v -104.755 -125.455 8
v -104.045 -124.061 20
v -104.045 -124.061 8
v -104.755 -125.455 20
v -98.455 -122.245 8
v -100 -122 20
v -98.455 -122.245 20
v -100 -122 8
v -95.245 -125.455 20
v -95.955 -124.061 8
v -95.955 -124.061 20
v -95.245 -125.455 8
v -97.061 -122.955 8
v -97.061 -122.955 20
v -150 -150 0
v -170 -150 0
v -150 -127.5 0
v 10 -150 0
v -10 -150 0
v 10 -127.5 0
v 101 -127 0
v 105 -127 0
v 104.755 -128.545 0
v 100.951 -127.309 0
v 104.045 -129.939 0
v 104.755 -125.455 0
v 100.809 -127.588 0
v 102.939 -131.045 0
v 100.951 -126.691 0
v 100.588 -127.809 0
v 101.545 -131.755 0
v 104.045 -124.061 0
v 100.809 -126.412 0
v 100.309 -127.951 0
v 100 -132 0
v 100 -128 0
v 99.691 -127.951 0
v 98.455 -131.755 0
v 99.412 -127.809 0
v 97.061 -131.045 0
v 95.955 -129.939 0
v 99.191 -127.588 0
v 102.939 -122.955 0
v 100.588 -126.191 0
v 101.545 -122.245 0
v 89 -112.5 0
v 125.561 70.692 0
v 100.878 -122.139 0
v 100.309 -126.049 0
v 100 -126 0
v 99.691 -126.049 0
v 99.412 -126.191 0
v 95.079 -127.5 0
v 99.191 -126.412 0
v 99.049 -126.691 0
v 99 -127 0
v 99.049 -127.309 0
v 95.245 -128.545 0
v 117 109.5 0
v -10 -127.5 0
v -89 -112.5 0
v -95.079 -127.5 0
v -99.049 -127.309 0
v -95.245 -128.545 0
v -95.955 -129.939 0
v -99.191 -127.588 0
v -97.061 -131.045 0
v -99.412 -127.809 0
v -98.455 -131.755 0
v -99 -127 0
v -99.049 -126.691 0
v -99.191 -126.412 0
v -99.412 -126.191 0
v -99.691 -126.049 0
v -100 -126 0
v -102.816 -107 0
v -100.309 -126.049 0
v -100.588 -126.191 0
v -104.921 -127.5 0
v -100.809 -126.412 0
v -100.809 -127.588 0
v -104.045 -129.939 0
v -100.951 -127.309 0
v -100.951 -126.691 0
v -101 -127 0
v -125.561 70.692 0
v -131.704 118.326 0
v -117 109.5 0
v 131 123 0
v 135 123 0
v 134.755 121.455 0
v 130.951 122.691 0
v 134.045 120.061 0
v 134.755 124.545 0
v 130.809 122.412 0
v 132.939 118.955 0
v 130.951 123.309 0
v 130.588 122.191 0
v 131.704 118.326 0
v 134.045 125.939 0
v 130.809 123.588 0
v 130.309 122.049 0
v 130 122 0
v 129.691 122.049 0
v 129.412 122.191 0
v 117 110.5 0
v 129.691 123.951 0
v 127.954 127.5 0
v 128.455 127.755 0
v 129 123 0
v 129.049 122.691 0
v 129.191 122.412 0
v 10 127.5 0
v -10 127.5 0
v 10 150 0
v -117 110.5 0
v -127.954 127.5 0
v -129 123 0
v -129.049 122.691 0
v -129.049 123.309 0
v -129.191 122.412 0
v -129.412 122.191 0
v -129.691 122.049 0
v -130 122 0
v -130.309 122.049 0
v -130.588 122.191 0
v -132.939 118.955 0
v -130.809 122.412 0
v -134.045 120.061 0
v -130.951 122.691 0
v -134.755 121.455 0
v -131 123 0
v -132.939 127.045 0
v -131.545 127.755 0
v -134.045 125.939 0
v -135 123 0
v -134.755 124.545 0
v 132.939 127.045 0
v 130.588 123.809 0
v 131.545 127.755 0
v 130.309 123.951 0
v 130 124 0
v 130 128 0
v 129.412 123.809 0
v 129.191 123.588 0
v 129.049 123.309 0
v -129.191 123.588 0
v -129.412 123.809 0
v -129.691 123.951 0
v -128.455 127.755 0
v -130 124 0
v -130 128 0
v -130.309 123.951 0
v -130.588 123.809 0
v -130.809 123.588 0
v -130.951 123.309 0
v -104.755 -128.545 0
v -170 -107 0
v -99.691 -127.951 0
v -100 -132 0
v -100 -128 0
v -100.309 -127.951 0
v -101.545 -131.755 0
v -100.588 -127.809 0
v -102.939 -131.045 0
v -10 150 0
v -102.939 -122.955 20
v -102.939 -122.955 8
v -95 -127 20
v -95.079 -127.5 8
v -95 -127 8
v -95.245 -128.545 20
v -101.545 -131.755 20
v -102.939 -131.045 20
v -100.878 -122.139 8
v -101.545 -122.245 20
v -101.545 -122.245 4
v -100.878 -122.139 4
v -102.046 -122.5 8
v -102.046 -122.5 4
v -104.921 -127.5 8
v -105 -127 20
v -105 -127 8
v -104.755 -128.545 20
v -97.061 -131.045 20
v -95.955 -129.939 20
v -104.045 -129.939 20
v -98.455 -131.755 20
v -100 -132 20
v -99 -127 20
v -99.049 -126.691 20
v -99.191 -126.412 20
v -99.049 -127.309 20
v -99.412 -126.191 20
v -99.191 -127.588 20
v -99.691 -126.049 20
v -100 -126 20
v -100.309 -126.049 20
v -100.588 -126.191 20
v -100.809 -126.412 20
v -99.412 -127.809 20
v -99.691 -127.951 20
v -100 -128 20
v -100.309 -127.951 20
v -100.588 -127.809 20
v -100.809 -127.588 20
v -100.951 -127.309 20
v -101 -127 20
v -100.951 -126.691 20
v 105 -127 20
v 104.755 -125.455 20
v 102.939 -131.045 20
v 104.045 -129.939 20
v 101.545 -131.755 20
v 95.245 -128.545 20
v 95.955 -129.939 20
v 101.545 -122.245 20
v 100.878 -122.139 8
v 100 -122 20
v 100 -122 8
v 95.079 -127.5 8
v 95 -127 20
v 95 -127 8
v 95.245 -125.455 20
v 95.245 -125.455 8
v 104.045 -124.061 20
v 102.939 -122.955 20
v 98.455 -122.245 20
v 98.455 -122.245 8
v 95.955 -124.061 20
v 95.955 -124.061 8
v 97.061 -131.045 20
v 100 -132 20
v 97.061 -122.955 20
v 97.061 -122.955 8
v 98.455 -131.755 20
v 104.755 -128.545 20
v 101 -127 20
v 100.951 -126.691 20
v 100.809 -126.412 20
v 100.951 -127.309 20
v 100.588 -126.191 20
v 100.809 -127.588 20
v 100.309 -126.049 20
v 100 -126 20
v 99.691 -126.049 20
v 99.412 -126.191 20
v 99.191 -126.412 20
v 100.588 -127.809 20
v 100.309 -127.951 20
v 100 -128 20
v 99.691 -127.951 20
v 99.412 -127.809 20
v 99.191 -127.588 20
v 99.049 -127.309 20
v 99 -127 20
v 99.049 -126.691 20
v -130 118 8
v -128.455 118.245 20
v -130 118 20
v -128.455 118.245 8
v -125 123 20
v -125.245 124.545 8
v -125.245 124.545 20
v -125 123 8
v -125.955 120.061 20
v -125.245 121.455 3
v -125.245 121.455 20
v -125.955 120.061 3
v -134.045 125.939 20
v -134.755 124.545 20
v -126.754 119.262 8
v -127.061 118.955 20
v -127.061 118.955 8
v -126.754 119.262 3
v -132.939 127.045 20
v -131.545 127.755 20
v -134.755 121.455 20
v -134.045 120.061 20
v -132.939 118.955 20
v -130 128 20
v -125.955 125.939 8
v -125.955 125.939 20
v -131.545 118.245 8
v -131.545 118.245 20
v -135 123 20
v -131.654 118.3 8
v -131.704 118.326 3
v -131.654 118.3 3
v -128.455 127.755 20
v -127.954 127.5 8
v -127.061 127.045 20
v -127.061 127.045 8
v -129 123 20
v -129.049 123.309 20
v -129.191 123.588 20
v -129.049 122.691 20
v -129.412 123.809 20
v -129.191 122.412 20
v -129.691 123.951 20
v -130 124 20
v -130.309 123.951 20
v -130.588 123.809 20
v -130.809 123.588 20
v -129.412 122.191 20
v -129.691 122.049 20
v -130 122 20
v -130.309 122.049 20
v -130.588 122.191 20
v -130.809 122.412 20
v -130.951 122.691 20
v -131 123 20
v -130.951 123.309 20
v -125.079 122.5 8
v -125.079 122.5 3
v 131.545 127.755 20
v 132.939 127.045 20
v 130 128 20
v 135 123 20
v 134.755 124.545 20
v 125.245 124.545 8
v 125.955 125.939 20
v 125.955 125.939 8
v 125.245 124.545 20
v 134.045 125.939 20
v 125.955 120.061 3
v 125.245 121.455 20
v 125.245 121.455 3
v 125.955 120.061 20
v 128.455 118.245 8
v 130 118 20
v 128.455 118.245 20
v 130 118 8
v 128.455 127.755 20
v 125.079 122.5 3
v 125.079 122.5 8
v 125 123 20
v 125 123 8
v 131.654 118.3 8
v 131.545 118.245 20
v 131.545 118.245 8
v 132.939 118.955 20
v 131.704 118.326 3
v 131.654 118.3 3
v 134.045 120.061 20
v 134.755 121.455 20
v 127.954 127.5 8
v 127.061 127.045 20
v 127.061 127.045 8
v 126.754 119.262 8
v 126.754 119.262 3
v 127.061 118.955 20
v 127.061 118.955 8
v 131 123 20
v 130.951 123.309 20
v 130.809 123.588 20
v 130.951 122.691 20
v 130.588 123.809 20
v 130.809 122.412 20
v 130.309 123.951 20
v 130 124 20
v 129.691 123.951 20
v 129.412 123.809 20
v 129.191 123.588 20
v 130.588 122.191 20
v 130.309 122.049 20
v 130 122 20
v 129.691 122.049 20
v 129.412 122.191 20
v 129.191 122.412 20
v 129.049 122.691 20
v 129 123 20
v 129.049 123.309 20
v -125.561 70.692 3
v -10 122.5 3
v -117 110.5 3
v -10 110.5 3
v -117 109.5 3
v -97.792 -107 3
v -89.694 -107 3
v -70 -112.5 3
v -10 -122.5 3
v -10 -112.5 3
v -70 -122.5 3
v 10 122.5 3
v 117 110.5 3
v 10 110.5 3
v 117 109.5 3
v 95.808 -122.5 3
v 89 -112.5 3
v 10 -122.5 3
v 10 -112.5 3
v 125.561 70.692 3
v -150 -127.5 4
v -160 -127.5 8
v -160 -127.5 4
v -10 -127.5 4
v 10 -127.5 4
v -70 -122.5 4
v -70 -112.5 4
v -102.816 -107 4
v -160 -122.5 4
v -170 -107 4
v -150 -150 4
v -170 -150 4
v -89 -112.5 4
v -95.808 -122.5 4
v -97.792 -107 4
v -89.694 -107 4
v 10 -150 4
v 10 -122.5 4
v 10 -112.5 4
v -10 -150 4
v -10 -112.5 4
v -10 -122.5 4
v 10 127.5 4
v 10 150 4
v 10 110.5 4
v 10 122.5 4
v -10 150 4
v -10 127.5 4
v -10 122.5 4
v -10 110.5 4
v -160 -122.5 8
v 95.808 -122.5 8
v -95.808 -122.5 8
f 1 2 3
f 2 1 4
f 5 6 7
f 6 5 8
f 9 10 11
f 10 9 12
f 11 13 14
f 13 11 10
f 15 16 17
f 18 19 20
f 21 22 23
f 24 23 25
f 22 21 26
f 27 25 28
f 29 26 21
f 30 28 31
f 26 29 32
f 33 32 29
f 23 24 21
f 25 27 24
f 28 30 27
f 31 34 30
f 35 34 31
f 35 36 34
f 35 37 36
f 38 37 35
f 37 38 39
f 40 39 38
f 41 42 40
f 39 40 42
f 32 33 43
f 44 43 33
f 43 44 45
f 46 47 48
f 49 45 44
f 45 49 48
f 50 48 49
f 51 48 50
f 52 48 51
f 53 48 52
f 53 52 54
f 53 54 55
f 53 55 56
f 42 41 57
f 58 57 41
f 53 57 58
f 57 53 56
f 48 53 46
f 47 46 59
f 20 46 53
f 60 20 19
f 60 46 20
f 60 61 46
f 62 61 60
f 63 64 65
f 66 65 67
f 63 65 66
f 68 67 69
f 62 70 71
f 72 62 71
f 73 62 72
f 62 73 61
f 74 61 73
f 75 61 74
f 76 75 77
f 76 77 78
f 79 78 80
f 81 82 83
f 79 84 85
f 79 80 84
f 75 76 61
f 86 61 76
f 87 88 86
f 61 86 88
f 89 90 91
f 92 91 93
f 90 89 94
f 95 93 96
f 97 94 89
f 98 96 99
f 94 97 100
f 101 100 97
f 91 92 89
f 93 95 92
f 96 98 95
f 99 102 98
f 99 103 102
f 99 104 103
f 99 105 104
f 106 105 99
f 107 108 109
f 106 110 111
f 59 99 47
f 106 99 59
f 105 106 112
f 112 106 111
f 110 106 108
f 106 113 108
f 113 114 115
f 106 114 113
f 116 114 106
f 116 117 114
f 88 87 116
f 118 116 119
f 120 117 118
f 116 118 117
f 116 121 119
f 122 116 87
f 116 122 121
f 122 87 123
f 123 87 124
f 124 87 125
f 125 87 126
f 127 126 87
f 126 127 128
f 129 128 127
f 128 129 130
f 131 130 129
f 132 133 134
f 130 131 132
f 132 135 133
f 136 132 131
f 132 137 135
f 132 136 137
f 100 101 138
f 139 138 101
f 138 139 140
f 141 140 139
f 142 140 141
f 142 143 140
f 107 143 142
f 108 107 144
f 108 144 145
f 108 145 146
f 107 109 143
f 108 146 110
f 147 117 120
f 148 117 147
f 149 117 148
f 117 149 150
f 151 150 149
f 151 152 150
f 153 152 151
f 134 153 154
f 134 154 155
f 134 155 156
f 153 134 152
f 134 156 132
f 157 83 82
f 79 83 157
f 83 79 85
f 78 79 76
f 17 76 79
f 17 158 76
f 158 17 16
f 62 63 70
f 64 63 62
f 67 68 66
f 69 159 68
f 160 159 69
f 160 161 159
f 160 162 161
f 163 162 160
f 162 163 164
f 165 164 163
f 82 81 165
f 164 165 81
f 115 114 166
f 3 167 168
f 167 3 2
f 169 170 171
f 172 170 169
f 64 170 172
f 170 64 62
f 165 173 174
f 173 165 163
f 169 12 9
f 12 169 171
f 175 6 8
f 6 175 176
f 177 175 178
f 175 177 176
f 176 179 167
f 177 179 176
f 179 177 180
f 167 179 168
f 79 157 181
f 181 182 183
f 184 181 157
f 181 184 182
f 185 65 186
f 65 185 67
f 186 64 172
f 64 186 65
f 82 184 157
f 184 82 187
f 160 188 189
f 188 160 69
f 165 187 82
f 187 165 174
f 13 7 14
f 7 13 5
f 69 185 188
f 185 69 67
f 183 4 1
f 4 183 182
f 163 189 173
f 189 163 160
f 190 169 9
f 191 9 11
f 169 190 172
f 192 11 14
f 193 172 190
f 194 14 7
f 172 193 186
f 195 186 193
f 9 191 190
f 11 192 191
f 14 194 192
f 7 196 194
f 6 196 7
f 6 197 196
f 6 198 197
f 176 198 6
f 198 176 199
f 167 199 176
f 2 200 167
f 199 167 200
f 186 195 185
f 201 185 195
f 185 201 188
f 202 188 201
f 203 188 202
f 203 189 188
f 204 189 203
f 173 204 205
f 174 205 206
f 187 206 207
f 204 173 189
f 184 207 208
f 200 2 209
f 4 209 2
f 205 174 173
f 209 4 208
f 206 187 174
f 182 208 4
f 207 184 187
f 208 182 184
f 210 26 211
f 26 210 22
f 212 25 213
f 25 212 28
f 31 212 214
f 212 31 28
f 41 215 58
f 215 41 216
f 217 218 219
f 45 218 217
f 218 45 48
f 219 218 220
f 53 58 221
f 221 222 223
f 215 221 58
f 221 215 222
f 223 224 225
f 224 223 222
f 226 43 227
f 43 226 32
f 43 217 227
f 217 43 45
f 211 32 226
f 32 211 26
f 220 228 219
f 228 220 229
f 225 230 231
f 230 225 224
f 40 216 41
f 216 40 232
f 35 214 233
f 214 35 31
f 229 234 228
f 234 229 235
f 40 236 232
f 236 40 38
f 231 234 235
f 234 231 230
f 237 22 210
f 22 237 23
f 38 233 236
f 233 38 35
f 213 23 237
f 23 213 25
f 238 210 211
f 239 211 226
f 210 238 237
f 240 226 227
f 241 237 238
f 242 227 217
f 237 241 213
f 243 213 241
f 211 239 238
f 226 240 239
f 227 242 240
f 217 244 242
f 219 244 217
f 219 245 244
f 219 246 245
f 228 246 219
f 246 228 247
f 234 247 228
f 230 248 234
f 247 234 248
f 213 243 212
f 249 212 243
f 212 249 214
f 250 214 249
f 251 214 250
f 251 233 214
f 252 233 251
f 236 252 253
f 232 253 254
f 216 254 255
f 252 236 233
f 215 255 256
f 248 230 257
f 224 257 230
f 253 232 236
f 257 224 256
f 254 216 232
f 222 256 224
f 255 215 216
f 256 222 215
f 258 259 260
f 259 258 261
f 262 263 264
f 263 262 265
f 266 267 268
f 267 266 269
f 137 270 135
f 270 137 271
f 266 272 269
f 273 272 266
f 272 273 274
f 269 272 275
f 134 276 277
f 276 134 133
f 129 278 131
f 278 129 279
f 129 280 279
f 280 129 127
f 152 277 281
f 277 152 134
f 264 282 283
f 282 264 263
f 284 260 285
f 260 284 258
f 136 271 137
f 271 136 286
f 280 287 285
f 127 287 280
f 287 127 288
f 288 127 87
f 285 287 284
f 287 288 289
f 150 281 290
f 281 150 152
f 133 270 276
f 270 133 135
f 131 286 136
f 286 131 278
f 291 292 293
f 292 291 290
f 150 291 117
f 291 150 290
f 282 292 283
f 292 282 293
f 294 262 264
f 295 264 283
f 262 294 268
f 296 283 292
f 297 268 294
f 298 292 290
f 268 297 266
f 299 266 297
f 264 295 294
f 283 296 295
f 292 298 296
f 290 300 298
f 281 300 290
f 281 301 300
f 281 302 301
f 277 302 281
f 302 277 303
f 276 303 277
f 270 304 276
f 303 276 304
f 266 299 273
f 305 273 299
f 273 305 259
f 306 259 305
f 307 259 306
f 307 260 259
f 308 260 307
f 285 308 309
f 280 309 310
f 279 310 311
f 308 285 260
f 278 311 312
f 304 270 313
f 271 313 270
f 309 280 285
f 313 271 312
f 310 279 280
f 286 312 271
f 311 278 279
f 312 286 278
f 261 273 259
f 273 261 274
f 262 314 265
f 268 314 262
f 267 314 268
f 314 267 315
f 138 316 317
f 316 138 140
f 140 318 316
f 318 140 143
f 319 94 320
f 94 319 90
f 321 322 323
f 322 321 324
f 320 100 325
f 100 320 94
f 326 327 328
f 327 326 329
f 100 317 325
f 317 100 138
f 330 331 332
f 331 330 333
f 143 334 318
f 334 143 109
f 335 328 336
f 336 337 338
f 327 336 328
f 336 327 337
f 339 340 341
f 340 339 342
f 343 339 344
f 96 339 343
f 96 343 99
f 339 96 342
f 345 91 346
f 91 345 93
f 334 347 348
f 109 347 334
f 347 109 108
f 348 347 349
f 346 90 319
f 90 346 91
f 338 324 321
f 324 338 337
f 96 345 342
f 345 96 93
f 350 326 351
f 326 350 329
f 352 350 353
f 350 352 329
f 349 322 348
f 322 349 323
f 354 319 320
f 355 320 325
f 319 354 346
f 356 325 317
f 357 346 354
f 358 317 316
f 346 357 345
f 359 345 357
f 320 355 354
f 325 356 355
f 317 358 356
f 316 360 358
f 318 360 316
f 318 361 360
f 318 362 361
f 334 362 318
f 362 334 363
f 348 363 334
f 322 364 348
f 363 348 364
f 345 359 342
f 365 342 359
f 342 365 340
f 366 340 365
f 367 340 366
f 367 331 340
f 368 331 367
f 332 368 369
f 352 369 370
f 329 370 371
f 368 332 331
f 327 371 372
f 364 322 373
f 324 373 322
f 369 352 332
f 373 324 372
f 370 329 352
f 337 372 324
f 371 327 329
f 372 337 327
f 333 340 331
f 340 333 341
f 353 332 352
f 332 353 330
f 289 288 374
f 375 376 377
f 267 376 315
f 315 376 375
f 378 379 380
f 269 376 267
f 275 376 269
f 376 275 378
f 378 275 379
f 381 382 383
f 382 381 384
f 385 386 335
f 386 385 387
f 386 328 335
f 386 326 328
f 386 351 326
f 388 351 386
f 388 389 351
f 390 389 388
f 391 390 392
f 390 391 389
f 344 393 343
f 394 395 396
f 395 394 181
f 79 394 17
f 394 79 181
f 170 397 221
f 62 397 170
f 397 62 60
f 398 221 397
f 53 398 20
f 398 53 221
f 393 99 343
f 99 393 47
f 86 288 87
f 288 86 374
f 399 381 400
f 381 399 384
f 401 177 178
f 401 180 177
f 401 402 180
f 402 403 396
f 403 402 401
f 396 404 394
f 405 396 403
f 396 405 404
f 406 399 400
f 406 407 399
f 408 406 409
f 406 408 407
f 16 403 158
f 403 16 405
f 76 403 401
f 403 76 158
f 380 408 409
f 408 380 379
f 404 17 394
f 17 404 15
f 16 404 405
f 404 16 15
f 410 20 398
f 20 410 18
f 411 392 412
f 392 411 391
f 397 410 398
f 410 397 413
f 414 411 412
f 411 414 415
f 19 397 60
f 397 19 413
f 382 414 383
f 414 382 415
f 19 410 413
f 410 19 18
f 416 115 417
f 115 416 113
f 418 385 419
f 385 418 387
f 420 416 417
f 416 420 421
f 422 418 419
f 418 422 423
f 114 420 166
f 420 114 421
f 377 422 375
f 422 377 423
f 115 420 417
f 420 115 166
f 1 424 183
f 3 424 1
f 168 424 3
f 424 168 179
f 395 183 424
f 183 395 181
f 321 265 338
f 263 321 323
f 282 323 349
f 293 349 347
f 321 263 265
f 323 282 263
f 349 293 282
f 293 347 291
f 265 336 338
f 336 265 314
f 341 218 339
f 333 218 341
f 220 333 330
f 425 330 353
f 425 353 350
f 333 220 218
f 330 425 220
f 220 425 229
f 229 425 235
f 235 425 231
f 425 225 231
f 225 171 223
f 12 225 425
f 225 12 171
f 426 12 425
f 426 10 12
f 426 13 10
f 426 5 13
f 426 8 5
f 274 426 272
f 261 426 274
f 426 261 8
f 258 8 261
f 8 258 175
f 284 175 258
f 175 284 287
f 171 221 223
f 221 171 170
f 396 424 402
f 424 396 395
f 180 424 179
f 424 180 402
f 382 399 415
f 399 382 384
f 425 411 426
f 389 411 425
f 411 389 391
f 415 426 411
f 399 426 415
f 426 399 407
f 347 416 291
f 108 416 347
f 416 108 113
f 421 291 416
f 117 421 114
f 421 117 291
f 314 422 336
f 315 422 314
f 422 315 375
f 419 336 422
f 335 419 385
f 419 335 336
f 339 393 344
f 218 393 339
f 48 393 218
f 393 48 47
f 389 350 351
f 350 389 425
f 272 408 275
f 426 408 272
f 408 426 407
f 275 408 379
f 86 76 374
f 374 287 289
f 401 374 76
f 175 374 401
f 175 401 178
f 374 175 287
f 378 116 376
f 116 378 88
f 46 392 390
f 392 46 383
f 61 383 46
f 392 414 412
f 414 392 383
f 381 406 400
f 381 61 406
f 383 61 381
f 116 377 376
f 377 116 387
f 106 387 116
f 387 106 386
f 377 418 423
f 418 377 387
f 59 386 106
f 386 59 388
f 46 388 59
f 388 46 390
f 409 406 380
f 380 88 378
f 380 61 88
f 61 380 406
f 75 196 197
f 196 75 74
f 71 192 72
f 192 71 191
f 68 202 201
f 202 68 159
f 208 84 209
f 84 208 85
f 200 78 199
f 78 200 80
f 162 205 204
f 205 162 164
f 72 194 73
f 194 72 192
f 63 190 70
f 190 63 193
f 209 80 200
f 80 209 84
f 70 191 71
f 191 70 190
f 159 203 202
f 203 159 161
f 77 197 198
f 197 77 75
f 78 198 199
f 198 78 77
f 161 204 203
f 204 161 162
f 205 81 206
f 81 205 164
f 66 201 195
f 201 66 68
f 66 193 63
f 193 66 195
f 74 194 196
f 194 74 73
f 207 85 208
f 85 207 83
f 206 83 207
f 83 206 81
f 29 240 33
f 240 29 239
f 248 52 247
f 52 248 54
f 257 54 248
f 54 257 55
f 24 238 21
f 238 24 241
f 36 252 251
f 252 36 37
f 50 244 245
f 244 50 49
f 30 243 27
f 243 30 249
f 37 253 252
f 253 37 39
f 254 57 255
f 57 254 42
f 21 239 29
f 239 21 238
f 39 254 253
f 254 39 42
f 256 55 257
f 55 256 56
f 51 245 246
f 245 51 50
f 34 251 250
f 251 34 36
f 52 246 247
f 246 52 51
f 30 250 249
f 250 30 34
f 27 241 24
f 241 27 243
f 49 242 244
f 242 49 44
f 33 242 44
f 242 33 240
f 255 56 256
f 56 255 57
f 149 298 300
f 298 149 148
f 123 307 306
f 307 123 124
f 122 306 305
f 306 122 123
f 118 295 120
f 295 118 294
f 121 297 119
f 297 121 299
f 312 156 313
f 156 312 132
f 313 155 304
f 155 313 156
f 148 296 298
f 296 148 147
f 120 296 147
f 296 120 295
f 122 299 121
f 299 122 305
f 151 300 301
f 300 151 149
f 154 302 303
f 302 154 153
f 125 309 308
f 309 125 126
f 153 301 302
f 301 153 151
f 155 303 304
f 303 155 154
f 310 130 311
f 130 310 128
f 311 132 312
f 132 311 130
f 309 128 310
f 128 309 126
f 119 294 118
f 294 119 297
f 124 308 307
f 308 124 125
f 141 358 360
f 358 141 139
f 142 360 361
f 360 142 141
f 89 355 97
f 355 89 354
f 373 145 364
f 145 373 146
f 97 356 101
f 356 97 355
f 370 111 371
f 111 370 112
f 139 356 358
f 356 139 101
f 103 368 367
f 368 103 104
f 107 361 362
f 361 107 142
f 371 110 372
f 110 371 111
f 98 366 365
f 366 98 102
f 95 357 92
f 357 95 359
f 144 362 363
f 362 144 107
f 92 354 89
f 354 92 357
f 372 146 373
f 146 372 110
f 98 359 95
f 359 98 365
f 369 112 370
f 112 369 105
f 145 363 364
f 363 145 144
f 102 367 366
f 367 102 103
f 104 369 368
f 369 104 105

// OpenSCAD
// file: ../globals.scad
/*
Most things in this file is represented as one millimeter, so keep that in mind while changing things.
Some of the setting are not mm but at variables that you can set, such as 2*x=2x and you are setting what x is.
I will try to specify when things are variables and not exact measurements.
*/

// printer slop
slop = 0.15;

obj_leg = 30;
leg_length = 5.5;
small_number = 0.001;
metal_core_rode_global = 5;


///////////////// number of holes /////////////////////
z_hole_number = 8;
other_holes = 8;

///////////////// Pins /////////////////////

//pins that poke out
ball_size = 10;
pin_height = 20;
pin_diameter = 6;


//holes
hole_ball_size = ball_size;
hole_pin_height = pin_height;
hole_pin_diameter = pin_diameter;

///////////////// Z THINGS /////////////////////

berring_slot_width = 7.5;
berring_slot_depth = 6.5;
metal_core_rode = 5;

///////////////// X THINGS /////////////////////

//male dove tails
male_dove_max_width=8;
male_dove_min_width=5;
male_dove_depth=5;
male_dove_height=obj_leg/2;

function scaled_male_dove_max_width() = male_dove_max_width - slop;
function scaled_male_dove_min_width() = male_dove_min_width - slop;
function scaled_male_dove_depth() = male_dove_depth - slop;

//female dove tails, this is found on the y mounts
girl_max_width=11;
girl_min_width=5;
girl_depth=5;
girl_height=obj_leg;


///////////////// Y THINGS /////////////////////
/*
The Y is so normal that all of those global variables at the top should change all of the setting in it, this section is set her incase there are variables set in the future development of this project.
*/

// stepper
motor_side_length = 43.2;
motor_bolt_hole_distance = 31;
motor_center_hole = 23;
motor_shaft_dia = 5;
motor_shaft_hole_dia = 5+2*slop;

// bolts etc.
bolt_hole_dia = 3+2*slop;
bolt_head_hole_dia = 5.8;

m4_bolt_hole_dia = 4+2*slop;
m4_bolt_head_hole_dia = 6.8+2*slop;


m3_nut_side = 5.65;
m3_nut_height = 2.3;
m4_nut_side = 6.85;
m4_nut_height = 3.1;

// threaded rod
lifter_rod_diam = 9.86;
hole_threaded_rod = lifter_rod_diam+2*slop;

// for the extensions
metal_rod_size = 9;
// main file
include <../globals.scad>;
include <../include.scad>;

use <../mockups.scad>;


bed_340_300_drill_jig();


module bed_340_300_drill_jig() {
    %bed_340_300();

    difference() {
        union() {
            translate([-200/2, -300/2 + 23, 0])
            cylinder(d=10, h=20, $fn=20);

            translate([200/2, -300/2 + 23, 0])
            cylinder(d=10, h=20, $fn=20);

            translate([-260/2, 300/2 - 27, 0])
            cylinder(d=10, h=20, $fn=20);

            translate([260/2, 300/2 - 27, 0])
            cylinder(d=10, h=20, $fn=20);

            hull() {
                translate([0, -127, 3/2])
                cube([200, 1, 3], center=true);

                translate([0, 125, 3/2])
                cube([265, 1, 3], center=true);
            }

            translate([-340/2 + 100/2, -117, 4/2])
            cube([100, 20, 4], center=true);

            translate([-340/2 + 20/2, -300/2 + 40/2, 4/2])
            cube([20, 40, 4], center=true);

            translate([0, -300/2 + 40/2, 4/2])
            cube([20, 40, 4], center=true);

            translate([0, 300/2 - 40/2, 4/2])
            cube([20, 40, 4], center=true);

            translate([-30, -125, 8/2])
            cube([260, 5, 8], center=true);

            translate([0, 125, 8/2])
            cube([260, 5, 8], center=true);

            hull() {
                translate([130, 125, 0])
                cylinder(d=5, h=8, $fn=30);

                translate([98, -125, 0])
                cylinder(d=5, h=8, $fn=30);
            }

            hull() {
                translate([-130, 125, 0])
                cylinder(d=5, h=8, $fn=30);

                translate([-98, -125, 0])
                cylinder(d=5, h=8, $fn=30);
            }
        }

        hull() {
            translate([0, -112, 0])
            cube([178, 1, 13], center=true);

            translate([0, 110, 0])
            cube([234, 1, 13], center=true);
        }

        translate([-200/2, -300/2 + 23, 0])
        cylinder(d=2, h=60, center=true, $fn=20);

        translate([200/2, -300/2 + 23, 0])
        cylinder(d=2, h=60, center=true, $fn=20);

        translate([-260/2, 300/2 - 27, 0])
        cylinder(d=2, h=60, center=true, $fn=20);

        translate([260/2, 300/2 - 27, 0])
        cylinder(d=2, h=60, center=true, $fn=20);
    }
}
